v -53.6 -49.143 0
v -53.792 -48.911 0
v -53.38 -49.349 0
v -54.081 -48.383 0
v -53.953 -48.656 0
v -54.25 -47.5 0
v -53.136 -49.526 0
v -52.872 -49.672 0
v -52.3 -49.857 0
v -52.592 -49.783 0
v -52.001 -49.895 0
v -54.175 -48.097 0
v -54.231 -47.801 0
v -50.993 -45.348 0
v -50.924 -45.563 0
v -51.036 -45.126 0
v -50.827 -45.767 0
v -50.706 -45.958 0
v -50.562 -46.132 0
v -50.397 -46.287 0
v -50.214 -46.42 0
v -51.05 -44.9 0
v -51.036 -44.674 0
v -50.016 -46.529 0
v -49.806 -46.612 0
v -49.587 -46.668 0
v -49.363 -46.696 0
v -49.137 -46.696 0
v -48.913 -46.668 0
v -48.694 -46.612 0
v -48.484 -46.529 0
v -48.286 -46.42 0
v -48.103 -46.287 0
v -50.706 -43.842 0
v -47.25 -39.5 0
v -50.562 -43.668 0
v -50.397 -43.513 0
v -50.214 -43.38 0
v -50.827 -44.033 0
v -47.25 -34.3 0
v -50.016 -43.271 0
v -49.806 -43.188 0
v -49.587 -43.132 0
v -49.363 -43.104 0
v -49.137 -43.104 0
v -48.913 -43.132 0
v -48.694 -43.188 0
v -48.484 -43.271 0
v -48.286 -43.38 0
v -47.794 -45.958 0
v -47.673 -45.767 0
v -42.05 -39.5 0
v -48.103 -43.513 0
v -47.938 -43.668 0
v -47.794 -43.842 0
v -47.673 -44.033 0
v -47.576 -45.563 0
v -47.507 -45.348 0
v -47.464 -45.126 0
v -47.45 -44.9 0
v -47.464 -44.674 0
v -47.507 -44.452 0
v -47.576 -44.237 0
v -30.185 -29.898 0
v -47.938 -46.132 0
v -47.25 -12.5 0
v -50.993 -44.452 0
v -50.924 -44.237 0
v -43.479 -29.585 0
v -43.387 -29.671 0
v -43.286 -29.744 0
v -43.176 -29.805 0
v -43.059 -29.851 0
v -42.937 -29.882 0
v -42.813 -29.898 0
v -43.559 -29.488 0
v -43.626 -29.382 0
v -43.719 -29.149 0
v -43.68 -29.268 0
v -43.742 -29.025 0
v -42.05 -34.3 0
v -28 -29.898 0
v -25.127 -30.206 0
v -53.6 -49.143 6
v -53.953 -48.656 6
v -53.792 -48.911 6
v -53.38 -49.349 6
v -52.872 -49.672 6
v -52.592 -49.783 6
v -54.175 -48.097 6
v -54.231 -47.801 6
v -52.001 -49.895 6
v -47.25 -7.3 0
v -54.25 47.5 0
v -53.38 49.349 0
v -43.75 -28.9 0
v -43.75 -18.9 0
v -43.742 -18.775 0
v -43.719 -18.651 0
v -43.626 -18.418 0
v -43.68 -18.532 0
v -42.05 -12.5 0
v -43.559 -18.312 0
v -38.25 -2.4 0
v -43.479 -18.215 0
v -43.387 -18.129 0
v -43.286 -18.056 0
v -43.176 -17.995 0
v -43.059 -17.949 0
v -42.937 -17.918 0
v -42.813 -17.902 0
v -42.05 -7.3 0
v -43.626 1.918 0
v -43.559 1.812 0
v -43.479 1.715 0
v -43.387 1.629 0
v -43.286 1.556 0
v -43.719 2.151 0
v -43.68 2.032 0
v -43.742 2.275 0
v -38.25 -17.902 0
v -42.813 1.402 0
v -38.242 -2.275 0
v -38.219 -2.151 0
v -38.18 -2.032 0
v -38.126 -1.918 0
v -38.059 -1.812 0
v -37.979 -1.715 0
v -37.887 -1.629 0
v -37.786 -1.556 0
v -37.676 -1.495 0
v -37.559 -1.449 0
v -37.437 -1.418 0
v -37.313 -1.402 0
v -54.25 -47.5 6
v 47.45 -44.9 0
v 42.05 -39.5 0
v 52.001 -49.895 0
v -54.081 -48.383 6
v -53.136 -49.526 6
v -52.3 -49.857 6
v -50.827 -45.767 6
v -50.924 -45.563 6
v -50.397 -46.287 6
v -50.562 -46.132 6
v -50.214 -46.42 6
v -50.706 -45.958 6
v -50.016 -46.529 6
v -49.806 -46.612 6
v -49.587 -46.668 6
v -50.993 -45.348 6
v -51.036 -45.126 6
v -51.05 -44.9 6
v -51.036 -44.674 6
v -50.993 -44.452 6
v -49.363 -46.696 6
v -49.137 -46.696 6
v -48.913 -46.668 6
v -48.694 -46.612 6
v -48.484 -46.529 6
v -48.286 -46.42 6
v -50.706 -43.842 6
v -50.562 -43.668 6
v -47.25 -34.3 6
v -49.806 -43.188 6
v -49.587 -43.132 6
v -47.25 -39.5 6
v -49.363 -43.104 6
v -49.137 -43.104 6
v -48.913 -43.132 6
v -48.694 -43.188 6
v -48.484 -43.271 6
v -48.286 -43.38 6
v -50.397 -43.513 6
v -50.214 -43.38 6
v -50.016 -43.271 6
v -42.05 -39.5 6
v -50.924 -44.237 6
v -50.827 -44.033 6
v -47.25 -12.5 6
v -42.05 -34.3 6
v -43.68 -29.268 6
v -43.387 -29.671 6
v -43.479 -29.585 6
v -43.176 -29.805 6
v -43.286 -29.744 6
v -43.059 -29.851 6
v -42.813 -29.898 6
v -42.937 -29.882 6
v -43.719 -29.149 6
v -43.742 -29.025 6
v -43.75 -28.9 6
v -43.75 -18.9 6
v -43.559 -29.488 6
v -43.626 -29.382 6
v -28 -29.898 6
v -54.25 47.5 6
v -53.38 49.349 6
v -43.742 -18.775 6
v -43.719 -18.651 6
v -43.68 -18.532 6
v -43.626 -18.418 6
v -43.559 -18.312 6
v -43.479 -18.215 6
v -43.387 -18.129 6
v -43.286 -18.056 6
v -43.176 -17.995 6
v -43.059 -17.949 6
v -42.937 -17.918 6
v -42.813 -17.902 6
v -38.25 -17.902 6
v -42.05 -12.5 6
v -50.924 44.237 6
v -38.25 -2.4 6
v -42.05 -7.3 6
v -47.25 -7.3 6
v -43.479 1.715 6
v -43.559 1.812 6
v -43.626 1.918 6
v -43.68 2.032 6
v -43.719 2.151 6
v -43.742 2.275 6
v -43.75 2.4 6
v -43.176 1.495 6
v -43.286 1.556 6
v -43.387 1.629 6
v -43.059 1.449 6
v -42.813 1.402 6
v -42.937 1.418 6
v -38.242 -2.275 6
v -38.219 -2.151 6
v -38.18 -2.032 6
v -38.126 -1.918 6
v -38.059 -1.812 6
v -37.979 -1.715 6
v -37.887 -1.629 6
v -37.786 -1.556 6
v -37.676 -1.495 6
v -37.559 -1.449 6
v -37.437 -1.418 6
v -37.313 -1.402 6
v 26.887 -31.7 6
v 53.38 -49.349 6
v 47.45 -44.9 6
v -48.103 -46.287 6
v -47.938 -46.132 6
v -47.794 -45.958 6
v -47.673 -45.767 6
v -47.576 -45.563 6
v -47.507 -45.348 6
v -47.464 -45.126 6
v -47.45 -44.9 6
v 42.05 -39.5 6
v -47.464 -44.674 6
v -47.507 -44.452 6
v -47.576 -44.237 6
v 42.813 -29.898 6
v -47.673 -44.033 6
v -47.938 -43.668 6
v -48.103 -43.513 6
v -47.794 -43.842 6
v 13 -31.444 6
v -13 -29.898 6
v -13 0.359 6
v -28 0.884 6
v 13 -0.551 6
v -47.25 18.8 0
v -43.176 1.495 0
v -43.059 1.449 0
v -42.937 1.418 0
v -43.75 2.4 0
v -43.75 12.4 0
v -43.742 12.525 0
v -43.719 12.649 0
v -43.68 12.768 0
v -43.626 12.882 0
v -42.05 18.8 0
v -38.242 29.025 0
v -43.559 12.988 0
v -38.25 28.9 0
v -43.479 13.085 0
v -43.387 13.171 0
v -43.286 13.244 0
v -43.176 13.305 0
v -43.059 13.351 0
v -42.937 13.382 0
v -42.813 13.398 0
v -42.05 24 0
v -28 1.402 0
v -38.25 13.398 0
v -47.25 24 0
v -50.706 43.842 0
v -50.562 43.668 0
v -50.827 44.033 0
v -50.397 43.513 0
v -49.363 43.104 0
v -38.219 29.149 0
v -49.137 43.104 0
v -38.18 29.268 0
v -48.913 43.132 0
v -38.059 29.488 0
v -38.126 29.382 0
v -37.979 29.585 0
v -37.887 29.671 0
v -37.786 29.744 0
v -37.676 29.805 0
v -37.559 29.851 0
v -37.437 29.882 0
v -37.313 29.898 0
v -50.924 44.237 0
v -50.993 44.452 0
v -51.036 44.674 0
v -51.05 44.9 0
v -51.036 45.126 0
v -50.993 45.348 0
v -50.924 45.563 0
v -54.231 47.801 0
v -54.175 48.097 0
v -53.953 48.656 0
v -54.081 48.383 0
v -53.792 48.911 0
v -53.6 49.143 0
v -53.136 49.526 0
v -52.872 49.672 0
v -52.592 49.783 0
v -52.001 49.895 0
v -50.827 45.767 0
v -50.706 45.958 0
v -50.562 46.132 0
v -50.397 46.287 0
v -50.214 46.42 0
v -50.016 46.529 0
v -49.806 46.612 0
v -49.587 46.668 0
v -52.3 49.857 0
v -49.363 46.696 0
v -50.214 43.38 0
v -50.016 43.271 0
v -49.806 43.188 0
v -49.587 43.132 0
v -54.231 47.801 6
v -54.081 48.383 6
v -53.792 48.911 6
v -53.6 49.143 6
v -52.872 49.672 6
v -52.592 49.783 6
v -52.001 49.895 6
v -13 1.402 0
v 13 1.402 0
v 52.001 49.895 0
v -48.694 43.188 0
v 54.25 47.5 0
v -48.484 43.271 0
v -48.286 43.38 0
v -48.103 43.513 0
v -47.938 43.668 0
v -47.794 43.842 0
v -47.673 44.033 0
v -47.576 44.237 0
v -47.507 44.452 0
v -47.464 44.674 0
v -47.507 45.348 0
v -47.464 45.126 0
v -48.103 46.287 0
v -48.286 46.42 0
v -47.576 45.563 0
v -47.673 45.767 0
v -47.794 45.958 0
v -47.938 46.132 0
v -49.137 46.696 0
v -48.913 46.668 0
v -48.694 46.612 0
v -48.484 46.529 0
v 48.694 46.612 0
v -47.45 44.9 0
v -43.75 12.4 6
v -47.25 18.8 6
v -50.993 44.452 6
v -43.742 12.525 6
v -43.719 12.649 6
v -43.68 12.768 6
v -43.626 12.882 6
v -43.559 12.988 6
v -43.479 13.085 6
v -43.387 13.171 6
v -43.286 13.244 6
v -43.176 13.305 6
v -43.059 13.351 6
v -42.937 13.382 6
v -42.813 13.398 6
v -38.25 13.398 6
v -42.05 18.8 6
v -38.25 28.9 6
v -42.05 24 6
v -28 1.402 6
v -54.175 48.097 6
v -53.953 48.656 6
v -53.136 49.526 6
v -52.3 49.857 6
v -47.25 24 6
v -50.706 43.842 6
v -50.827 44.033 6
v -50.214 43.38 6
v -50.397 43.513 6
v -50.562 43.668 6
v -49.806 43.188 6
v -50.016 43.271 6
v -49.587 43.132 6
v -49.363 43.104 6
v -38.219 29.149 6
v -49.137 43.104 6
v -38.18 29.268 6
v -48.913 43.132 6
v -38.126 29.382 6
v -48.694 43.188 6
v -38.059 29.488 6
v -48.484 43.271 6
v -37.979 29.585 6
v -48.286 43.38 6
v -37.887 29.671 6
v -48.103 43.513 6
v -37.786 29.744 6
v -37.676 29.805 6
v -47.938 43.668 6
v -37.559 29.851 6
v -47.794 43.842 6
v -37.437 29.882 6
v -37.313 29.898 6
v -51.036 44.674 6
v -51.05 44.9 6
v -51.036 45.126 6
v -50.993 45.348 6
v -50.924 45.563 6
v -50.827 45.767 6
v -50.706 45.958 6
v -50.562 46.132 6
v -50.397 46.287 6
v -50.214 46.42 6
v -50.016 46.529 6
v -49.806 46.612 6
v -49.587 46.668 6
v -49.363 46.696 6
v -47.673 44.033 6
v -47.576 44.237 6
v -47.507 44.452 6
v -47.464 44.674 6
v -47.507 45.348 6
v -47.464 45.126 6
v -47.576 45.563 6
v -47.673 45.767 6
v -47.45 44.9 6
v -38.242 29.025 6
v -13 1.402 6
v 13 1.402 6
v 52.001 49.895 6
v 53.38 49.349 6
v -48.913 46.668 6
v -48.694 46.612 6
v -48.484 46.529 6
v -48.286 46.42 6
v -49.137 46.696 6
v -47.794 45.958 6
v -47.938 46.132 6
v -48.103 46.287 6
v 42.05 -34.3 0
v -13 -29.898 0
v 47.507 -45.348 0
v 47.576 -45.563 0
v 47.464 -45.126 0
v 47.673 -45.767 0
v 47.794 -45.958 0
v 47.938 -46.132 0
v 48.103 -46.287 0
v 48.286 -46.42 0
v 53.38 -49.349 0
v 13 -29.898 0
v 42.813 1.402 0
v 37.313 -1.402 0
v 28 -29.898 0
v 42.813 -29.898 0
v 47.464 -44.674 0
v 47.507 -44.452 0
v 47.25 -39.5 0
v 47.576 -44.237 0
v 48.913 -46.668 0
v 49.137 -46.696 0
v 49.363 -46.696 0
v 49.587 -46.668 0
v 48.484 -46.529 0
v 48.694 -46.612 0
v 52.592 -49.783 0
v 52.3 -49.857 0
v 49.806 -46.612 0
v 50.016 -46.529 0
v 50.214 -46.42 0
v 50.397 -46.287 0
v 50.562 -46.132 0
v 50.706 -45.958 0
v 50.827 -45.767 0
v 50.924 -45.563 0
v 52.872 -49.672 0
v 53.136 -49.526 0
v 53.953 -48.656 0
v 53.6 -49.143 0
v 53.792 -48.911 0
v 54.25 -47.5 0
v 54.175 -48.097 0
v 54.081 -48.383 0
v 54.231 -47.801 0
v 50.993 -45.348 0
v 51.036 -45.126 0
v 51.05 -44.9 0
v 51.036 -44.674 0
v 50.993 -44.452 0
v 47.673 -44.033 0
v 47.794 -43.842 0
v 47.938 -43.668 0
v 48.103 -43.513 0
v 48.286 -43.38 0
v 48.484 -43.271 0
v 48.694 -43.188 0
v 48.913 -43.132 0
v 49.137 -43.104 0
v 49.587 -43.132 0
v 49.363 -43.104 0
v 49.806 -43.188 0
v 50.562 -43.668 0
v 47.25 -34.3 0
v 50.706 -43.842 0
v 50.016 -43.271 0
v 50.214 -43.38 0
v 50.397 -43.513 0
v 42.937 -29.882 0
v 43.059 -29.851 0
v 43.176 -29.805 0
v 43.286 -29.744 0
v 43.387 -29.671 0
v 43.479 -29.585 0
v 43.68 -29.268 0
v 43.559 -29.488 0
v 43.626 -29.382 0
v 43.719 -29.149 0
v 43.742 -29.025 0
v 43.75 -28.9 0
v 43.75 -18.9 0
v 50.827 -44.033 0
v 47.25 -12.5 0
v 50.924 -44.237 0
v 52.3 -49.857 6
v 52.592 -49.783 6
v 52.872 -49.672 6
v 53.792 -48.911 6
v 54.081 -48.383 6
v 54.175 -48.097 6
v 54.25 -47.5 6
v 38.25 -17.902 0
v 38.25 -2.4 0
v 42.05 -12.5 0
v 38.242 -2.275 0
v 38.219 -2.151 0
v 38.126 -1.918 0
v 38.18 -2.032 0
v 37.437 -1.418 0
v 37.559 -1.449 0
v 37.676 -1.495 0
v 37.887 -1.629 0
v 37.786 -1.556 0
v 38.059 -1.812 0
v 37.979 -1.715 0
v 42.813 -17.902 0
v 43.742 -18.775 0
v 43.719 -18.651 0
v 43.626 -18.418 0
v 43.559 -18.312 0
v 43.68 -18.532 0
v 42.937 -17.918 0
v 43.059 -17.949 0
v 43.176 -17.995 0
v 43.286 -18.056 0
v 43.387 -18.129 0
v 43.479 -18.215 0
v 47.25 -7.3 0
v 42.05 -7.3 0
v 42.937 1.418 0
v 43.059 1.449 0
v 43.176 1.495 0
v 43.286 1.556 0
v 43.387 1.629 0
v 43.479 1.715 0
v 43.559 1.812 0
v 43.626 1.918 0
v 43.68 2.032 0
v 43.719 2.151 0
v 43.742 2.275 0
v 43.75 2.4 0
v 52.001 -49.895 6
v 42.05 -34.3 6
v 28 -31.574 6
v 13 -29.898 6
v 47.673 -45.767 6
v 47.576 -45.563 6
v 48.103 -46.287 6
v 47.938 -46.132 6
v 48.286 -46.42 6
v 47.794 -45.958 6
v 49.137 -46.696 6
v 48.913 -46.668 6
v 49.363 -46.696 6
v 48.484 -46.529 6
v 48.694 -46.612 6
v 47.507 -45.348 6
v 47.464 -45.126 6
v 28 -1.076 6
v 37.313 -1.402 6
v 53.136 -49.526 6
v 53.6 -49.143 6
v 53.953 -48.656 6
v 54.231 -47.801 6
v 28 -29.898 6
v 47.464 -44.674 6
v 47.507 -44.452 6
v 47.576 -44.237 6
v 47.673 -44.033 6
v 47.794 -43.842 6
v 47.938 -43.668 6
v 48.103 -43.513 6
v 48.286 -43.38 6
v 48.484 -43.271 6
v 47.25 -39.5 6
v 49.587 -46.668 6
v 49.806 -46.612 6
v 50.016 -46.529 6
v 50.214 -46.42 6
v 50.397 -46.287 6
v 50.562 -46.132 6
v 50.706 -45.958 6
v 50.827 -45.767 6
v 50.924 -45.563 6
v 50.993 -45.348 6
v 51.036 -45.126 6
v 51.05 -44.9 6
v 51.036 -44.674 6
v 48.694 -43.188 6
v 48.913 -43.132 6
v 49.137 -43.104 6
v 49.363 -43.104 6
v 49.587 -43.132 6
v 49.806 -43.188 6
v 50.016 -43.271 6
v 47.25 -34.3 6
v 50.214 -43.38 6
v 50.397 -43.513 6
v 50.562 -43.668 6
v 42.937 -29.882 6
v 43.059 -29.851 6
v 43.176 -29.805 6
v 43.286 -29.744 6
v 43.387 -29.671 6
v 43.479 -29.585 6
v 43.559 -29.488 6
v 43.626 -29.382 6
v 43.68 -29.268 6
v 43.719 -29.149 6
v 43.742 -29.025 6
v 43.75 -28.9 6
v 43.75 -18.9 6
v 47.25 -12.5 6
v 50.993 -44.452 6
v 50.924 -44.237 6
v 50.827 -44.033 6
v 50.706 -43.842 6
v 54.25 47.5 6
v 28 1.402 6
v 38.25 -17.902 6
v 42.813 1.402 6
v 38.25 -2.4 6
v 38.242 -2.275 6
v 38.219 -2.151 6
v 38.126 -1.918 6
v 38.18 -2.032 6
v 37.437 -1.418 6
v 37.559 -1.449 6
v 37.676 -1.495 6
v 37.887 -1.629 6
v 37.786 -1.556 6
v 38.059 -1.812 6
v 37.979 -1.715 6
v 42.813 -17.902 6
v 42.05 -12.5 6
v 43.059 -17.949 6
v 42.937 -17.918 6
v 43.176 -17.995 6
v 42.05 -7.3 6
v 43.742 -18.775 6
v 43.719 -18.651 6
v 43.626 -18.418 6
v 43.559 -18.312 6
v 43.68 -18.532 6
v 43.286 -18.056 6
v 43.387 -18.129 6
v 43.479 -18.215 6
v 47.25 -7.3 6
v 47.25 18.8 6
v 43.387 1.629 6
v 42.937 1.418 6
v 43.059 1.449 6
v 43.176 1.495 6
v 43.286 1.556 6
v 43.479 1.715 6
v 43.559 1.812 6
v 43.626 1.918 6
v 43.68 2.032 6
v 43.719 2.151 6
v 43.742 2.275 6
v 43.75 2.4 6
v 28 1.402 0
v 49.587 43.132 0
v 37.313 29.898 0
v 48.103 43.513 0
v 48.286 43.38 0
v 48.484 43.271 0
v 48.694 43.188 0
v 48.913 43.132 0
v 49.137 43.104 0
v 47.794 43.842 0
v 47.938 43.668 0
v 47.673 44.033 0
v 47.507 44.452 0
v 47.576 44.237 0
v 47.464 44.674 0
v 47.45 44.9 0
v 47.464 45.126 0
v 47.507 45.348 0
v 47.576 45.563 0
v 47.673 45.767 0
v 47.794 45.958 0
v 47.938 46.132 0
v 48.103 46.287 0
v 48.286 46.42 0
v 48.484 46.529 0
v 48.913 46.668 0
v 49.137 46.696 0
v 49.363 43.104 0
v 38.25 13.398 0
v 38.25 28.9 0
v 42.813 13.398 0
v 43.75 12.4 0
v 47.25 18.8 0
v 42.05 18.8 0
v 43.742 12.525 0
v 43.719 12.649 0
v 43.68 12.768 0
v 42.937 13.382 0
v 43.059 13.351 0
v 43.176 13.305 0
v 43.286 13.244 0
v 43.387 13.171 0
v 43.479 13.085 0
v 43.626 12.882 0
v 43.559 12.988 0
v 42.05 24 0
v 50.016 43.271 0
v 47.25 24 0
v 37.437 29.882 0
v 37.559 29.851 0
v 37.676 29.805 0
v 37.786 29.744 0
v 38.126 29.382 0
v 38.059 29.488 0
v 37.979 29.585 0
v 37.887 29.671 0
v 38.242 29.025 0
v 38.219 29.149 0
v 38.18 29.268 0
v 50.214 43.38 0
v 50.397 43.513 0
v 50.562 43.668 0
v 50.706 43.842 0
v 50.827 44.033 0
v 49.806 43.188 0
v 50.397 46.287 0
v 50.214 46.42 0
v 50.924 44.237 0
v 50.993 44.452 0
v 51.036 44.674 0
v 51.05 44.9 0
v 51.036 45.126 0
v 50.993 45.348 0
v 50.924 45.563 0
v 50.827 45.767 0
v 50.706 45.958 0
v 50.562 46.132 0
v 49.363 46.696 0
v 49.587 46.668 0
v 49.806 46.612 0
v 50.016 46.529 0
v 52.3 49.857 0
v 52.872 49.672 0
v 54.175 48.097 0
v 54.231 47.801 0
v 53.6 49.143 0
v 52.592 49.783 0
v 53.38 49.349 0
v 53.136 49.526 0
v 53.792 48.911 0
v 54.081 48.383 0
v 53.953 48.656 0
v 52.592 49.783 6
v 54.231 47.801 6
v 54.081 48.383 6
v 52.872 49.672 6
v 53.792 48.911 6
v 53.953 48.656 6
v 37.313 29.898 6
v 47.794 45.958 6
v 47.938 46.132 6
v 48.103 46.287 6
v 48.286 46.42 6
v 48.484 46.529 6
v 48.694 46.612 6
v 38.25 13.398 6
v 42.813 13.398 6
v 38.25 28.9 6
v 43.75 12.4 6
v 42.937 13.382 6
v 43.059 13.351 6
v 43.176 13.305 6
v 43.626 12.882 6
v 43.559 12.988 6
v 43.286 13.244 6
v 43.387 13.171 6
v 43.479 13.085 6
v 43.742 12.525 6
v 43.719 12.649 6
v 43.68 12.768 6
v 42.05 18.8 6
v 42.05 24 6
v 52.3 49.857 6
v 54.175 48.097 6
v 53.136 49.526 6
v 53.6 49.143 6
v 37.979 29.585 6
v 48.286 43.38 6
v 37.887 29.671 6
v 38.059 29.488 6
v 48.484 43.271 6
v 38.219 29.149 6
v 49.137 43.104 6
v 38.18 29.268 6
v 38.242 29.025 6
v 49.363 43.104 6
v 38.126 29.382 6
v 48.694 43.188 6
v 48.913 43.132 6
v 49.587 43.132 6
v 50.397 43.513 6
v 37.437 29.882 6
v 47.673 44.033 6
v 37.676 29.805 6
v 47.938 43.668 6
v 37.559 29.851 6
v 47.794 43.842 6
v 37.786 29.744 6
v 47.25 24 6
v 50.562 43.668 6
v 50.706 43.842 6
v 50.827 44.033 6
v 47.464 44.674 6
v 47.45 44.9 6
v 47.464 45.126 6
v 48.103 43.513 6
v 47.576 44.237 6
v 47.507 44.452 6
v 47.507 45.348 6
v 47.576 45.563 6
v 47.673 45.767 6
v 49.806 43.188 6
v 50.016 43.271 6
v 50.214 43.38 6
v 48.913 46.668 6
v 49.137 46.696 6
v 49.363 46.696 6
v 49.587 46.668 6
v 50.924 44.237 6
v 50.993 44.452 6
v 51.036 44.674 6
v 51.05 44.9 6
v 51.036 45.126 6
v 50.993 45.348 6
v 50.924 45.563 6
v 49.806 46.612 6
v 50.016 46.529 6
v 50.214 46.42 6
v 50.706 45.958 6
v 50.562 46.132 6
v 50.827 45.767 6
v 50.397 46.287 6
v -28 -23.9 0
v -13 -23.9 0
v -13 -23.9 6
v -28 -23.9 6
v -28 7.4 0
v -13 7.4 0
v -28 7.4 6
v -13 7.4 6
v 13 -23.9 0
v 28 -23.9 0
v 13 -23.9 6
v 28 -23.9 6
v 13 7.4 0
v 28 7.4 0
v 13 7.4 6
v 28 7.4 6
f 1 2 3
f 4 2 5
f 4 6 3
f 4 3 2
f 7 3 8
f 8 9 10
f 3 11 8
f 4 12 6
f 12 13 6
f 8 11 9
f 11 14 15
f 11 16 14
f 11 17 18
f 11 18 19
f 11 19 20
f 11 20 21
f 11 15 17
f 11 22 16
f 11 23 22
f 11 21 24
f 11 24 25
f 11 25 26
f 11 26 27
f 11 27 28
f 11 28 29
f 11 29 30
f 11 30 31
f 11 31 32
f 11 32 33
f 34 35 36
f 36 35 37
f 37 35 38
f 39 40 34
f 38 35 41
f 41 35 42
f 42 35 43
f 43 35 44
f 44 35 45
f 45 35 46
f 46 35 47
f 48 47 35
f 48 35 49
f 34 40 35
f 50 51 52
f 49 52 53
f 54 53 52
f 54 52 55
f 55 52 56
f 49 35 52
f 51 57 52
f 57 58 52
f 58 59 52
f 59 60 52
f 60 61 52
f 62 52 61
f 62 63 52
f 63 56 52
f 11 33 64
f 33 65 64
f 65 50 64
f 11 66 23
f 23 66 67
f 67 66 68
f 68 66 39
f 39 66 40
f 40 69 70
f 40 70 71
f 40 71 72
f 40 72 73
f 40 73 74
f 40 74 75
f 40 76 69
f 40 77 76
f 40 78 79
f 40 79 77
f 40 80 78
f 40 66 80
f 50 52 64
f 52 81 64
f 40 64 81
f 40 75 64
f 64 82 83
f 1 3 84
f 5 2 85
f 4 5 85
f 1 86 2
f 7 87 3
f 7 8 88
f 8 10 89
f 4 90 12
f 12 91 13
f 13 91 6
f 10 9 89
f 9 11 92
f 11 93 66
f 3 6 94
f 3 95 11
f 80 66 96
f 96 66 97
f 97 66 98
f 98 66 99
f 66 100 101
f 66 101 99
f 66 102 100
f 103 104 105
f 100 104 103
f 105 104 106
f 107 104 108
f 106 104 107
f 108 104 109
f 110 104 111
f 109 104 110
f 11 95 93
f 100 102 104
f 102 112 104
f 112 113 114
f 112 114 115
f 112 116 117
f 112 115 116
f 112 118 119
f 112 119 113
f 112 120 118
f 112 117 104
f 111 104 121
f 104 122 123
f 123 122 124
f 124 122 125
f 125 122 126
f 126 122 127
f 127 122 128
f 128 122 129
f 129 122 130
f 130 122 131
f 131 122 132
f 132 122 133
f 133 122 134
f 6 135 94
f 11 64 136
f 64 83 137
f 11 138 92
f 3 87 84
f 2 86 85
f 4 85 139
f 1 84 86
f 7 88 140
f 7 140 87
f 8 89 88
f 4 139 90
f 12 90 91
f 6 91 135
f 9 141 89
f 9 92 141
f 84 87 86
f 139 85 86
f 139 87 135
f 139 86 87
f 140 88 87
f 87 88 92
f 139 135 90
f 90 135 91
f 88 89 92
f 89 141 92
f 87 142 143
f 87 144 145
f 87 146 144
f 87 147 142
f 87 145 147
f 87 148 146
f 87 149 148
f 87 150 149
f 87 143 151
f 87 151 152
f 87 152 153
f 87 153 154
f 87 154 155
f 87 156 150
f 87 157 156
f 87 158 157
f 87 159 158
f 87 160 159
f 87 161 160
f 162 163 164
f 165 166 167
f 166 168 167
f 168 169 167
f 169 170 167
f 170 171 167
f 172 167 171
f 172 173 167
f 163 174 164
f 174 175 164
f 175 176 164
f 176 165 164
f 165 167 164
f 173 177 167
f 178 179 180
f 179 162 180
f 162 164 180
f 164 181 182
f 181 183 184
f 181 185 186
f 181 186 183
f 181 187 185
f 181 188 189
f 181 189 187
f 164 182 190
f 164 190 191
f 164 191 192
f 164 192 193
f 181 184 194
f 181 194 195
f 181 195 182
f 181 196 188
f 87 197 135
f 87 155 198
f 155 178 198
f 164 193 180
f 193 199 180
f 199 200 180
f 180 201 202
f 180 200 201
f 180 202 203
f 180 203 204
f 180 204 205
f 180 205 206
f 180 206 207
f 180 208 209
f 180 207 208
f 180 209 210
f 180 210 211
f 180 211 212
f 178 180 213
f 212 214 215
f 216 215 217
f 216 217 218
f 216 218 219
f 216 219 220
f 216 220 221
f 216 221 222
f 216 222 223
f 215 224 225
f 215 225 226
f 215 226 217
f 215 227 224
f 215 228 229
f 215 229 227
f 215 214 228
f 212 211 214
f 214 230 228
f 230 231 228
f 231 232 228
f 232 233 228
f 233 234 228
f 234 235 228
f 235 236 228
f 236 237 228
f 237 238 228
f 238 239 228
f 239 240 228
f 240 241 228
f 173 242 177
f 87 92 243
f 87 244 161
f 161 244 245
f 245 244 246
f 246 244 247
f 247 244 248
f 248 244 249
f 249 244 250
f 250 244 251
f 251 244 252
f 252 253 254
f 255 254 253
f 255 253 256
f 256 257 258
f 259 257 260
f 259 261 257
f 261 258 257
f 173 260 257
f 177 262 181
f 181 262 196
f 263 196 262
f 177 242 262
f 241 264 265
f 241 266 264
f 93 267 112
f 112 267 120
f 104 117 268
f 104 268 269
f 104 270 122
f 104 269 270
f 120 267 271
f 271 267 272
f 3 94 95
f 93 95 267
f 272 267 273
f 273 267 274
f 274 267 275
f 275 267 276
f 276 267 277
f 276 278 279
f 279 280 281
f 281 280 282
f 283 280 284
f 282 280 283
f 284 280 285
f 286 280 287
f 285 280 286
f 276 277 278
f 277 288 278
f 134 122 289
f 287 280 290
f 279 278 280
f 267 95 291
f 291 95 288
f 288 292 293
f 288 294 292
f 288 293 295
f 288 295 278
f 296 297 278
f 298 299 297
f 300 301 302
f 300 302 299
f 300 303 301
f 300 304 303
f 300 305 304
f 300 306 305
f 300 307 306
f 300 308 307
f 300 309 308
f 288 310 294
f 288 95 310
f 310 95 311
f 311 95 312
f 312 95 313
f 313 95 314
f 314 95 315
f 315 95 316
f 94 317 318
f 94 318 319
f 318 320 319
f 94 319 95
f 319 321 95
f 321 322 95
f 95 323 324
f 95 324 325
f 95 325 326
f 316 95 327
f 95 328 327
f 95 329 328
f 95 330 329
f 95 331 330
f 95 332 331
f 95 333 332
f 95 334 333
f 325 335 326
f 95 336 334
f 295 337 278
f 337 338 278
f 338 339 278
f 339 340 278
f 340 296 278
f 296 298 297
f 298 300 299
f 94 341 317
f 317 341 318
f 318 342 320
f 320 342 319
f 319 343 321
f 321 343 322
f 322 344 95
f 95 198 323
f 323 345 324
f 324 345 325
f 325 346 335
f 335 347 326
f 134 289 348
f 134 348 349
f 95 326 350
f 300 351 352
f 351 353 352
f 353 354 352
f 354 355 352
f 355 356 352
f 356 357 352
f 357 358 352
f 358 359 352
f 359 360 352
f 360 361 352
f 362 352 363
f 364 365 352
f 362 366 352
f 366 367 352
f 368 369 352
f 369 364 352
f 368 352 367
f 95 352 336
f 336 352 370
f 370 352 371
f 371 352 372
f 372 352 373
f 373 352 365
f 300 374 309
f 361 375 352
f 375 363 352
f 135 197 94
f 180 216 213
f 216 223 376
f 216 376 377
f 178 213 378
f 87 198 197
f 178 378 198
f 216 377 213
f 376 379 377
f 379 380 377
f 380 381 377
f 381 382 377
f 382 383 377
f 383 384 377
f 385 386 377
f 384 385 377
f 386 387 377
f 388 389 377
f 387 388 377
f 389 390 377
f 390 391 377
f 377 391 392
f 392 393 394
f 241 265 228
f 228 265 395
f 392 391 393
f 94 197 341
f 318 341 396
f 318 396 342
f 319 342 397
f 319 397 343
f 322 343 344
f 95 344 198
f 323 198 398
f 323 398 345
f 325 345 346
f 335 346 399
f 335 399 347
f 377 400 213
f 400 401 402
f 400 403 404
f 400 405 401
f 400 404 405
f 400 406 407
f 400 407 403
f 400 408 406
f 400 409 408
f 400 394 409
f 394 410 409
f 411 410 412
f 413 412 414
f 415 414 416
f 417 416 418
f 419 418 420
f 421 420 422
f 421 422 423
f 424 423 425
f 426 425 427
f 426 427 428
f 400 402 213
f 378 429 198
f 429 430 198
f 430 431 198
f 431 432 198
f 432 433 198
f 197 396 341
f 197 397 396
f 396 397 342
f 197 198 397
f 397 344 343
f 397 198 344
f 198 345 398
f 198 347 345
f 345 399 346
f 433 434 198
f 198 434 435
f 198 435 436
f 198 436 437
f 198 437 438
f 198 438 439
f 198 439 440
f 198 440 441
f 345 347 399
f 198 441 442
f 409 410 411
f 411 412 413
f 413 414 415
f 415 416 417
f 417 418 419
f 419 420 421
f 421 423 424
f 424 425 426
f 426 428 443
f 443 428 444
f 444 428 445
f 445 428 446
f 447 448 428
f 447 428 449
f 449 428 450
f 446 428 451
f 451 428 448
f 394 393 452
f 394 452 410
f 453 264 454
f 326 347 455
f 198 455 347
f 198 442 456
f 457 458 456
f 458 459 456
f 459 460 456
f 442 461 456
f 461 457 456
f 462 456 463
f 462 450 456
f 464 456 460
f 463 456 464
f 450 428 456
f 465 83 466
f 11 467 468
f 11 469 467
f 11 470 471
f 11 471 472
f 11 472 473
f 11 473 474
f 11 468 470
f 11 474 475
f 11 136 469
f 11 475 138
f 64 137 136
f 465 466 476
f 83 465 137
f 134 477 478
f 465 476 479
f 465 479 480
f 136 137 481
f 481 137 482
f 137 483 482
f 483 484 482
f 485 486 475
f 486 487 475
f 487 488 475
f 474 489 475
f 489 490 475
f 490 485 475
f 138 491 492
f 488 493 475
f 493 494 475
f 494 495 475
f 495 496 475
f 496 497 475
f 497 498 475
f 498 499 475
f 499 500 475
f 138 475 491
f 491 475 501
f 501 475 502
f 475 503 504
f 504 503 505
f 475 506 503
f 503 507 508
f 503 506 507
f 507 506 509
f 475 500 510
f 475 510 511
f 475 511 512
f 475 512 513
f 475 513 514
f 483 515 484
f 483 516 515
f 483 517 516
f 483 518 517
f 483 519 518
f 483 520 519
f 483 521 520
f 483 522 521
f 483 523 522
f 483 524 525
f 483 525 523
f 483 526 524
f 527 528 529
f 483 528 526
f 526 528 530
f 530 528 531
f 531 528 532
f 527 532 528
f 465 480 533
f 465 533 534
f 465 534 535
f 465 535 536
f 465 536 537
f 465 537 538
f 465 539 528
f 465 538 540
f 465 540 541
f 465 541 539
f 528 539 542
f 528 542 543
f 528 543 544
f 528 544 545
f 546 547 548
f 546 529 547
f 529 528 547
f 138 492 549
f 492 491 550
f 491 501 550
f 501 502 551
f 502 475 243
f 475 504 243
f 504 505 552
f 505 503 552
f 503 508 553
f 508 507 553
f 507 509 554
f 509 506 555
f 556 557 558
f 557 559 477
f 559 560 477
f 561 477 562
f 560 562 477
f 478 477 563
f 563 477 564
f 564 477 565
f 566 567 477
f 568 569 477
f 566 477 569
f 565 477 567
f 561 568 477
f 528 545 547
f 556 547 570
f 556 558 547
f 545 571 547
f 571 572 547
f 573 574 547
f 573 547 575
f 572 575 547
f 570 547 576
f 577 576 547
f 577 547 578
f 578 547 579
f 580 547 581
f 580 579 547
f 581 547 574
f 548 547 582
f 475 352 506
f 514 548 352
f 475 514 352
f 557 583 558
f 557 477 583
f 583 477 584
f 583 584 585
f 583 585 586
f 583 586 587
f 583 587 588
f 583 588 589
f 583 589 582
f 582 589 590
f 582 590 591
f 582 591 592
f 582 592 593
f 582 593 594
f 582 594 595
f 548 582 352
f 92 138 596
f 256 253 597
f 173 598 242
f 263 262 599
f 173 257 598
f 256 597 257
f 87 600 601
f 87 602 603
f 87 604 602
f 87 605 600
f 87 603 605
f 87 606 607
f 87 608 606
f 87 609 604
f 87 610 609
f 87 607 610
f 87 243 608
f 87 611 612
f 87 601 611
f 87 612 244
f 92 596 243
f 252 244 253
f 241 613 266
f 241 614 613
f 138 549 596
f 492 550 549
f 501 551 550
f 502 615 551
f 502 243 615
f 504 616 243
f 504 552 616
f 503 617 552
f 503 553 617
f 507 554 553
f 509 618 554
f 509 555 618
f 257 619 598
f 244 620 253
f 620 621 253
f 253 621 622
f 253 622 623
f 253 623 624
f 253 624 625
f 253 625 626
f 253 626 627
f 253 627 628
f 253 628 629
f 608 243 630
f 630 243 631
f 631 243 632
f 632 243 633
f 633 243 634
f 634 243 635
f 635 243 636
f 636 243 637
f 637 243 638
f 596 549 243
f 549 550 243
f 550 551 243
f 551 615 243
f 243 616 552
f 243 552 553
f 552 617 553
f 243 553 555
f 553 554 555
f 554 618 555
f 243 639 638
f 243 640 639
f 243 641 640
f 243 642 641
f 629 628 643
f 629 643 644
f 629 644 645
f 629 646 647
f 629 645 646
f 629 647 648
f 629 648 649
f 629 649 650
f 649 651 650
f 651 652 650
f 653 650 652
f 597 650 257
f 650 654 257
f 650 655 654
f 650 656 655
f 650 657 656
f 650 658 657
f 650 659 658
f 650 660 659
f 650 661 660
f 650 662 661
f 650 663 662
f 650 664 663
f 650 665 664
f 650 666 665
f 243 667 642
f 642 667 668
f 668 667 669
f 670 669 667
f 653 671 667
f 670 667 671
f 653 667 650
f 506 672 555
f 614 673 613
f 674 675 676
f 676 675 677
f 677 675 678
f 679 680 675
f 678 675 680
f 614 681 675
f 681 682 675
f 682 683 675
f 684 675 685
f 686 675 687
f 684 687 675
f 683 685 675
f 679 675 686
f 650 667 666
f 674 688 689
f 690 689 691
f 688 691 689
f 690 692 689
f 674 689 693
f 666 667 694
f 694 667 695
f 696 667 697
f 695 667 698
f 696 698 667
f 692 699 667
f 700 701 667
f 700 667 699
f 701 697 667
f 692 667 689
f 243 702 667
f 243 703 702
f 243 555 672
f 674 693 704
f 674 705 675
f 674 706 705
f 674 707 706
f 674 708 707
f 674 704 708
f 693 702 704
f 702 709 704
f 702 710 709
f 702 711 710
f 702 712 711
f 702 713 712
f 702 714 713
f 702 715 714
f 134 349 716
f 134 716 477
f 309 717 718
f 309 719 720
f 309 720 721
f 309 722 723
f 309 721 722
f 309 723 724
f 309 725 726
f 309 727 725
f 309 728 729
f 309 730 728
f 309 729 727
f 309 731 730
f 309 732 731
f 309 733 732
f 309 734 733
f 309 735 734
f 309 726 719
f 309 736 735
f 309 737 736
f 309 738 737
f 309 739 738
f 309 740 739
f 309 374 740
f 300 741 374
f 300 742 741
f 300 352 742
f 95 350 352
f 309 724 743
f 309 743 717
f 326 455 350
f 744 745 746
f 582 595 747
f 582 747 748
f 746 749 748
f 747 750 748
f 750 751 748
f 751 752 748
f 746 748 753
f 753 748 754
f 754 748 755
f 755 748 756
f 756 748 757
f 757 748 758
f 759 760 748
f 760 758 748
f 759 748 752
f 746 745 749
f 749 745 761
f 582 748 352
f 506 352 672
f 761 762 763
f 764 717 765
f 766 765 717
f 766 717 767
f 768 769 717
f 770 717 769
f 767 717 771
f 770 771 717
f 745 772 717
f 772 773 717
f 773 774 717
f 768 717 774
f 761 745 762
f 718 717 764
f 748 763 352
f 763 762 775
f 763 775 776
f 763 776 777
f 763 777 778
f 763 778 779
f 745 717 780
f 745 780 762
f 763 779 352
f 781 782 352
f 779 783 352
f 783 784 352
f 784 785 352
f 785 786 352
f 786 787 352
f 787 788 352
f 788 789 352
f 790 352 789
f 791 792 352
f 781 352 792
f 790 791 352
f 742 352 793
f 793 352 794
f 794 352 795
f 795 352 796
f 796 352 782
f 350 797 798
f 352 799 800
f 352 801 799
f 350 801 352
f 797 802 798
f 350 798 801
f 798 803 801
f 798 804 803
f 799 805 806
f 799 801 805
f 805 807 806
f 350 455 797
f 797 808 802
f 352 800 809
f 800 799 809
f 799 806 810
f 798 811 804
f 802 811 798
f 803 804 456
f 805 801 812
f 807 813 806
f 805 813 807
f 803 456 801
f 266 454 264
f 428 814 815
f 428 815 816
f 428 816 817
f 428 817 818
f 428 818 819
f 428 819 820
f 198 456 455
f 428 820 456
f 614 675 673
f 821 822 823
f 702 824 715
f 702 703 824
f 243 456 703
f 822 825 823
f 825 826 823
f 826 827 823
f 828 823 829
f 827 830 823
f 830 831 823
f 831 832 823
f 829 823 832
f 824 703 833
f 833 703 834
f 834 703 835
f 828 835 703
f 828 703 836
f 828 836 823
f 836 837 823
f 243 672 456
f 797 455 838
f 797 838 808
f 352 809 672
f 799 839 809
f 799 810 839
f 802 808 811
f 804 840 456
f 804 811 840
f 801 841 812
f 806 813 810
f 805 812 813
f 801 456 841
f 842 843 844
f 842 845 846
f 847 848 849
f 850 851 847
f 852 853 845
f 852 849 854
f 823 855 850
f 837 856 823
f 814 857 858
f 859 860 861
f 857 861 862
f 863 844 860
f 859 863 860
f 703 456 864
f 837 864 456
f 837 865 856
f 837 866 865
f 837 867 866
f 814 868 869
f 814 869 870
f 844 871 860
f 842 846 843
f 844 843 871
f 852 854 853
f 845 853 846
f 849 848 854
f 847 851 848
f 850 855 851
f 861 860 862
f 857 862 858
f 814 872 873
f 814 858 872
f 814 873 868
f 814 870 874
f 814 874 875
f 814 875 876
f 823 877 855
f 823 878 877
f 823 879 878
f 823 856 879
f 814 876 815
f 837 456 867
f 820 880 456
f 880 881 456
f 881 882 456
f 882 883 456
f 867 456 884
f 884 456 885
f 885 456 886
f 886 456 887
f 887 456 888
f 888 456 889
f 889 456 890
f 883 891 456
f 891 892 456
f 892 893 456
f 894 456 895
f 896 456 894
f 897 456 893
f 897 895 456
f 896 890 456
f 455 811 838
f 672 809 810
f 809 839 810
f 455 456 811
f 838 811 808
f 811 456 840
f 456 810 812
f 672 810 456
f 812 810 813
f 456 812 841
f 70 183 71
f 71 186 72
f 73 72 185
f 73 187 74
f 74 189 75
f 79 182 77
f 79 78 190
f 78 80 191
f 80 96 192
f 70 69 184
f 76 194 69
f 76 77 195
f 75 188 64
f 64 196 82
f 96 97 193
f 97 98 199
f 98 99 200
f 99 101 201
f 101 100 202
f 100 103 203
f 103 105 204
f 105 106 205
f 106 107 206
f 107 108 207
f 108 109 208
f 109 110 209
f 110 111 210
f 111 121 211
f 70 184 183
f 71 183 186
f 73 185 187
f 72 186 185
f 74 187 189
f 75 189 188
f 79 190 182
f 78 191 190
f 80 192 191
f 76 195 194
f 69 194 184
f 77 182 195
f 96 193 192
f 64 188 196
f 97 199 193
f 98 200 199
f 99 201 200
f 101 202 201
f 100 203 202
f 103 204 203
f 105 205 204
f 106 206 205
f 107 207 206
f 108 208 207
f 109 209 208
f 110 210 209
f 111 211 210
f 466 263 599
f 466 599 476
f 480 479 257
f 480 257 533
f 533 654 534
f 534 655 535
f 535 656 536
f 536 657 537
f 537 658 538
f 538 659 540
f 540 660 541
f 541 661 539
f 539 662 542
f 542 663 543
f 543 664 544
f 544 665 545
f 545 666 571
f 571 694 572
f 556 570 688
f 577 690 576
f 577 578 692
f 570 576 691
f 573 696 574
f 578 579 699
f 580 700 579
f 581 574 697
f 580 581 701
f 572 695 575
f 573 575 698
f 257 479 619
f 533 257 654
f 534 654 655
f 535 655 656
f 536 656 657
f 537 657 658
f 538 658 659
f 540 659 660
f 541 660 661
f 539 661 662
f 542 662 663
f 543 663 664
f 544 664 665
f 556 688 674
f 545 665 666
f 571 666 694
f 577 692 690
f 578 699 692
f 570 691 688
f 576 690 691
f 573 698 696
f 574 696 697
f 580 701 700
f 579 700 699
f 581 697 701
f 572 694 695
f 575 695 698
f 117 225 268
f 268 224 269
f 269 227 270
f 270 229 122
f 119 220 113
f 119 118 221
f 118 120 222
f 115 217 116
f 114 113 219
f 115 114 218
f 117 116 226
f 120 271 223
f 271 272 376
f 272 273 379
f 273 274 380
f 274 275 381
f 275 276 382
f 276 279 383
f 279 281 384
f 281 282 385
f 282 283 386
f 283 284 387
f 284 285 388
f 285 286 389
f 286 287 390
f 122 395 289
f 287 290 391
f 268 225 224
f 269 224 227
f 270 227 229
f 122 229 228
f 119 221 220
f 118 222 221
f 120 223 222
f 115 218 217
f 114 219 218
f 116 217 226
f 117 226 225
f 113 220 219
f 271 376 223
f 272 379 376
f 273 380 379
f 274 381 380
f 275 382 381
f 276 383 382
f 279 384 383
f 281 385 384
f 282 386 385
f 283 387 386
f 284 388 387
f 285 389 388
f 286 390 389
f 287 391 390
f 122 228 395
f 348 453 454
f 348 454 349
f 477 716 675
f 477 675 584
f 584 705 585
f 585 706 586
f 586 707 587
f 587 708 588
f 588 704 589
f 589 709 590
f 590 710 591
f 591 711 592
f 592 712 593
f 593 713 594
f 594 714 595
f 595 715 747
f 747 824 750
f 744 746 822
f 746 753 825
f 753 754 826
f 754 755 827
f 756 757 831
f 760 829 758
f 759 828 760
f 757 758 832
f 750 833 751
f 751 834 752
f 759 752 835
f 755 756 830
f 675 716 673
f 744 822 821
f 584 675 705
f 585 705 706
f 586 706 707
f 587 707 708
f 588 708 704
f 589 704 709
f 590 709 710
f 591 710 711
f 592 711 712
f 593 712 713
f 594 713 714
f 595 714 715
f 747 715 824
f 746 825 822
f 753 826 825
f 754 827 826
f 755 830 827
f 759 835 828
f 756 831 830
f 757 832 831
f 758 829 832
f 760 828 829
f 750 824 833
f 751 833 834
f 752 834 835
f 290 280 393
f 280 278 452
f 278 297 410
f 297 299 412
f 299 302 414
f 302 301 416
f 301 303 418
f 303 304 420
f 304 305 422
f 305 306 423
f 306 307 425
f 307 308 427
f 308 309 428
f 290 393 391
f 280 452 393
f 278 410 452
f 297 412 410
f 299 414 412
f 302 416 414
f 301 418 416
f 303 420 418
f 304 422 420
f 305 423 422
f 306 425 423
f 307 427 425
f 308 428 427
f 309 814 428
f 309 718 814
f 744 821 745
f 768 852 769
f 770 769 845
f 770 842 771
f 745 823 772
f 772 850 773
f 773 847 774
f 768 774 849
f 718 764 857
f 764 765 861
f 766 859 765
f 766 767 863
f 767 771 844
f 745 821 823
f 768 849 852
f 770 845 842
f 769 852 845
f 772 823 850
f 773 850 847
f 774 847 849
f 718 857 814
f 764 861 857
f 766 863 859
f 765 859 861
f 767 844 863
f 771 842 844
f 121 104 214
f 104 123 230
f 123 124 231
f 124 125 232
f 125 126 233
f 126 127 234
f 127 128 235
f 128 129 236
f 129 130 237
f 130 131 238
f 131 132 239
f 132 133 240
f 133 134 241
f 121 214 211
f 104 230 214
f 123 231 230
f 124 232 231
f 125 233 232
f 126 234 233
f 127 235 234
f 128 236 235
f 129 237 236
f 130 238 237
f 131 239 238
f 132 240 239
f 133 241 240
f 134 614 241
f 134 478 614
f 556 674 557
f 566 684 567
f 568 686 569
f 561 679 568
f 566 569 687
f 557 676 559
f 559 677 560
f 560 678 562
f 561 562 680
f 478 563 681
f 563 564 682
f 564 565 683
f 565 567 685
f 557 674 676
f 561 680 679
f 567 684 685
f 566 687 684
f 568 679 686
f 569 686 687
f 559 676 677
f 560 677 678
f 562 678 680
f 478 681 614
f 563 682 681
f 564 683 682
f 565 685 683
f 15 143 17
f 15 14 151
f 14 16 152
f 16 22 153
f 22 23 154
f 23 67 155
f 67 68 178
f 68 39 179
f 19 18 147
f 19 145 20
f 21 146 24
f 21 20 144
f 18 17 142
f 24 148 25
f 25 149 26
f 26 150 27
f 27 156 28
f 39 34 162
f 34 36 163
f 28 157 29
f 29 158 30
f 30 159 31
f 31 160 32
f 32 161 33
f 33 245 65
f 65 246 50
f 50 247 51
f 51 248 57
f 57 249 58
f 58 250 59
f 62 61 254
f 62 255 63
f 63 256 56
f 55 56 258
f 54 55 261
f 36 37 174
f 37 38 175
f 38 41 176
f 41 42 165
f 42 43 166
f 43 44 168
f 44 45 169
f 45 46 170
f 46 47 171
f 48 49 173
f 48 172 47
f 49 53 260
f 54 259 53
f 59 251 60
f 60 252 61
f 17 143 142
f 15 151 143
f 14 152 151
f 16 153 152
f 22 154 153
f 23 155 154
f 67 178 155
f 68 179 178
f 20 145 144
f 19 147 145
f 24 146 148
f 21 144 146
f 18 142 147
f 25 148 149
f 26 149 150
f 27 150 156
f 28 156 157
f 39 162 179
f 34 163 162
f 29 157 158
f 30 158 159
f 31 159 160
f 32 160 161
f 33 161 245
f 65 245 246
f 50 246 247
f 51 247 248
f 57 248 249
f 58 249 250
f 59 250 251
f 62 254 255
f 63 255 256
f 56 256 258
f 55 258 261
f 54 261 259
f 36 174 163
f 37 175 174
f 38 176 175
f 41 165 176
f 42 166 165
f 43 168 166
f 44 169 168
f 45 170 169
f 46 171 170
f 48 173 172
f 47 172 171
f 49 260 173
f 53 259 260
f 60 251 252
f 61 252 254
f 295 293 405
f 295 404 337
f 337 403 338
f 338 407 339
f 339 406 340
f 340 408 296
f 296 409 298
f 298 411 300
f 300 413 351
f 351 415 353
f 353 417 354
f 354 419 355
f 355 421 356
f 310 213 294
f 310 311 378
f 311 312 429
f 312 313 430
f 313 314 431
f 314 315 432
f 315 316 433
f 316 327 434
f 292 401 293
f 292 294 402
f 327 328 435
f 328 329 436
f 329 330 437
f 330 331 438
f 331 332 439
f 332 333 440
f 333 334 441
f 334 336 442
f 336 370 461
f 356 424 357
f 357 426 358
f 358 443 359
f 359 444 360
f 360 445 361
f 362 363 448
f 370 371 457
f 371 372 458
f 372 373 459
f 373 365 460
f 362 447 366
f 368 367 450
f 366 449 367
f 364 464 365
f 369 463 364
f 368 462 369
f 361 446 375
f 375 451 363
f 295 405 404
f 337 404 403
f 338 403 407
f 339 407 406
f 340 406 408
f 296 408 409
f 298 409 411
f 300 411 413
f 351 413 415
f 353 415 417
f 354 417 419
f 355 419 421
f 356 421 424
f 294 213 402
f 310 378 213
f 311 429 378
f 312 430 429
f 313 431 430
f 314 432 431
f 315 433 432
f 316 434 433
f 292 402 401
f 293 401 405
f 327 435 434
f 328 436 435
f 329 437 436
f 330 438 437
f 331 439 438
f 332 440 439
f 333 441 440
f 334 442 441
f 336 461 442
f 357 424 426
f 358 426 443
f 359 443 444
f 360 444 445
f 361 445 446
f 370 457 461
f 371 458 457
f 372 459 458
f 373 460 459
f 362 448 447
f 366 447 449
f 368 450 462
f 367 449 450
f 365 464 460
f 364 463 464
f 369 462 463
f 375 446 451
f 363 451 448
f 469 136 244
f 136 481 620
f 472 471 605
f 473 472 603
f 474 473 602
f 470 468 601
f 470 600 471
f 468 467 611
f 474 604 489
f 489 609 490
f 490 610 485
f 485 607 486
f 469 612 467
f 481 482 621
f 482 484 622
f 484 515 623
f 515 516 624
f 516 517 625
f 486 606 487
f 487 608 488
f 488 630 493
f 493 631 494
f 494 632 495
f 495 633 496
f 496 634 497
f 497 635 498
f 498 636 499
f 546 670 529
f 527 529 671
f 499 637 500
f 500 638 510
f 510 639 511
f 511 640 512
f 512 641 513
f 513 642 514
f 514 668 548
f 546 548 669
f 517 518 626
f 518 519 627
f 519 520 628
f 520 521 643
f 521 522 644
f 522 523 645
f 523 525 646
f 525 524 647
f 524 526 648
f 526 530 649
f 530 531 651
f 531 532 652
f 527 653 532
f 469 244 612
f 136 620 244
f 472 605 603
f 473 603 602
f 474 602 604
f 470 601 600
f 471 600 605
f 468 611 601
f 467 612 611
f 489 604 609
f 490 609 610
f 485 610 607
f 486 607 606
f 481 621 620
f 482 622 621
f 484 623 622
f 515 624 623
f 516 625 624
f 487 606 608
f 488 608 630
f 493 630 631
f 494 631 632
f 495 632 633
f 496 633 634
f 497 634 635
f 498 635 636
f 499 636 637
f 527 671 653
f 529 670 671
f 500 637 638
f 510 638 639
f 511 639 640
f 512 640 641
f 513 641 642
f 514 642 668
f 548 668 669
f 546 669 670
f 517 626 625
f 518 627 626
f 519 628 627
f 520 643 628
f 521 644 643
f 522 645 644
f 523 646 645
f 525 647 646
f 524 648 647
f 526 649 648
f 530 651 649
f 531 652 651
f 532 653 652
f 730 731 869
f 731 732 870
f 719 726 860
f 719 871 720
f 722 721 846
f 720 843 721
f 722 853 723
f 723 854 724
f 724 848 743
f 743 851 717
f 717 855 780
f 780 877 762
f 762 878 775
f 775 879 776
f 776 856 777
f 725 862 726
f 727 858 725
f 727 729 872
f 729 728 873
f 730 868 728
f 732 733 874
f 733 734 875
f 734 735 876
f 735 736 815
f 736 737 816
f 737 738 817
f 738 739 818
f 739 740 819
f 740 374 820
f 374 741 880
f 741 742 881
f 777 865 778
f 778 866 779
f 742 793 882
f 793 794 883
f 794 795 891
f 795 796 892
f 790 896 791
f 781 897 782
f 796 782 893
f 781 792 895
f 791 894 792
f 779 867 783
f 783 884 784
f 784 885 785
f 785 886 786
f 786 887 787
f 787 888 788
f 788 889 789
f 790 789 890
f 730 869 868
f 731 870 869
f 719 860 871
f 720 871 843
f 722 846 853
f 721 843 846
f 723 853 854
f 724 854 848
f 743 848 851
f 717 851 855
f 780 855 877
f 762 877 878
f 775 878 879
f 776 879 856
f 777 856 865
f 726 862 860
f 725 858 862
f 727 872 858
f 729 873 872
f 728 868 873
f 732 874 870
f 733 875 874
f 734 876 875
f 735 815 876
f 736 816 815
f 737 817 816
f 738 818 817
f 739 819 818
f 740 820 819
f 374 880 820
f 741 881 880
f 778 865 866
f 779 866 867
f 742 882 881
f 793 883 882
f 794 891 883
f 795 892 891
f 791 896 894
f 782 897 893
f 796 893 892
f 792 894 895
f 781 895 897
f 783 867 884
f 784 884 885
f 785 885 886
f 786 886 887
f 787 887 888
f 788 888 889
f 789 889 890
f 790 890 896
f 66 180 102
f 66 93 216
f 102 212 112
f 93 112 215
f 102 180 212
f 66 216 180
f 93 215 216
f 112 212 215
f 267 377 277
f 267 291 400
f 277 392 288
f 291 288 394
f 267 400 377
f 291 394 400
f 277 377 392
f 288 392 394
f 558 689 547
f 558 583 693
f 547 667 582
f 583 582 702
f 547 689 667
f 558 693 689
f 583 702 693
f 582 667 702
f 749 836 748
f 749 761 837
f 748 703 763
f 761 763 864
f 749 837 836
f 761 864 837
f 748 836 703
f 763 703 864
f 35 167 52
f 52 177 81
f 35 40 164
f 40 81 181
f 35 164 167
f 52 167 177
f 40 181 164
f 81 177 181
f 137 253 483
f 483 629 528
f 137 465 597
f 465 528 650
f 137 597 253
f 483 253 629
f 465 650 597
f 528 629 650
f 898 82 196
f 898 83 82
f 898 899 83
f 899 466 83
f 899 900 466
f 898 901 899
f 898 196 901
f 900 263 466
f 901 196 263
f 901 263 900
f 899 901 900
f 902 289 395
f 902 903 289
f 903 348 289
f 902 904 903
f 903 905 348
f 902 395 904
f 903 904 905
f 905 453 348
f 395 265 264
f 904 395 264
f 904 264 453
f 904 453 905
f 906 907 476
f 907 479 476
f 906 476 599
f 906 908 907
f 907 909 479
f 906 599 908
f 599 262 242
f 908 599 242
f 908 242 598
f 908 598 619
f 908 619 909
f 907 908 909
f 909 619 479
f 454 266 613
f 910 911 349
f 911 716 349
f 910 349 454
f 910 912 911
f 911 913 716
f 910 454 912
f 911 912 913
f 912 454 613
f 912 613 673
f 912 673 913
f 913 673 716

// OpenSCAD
$fn = 50;

difference() {
	union() {
		translate(v = [0, 0, 0]) {
			rotate(a = [0, 0, 0]) {
				difference() {
					union() {
						translate(v = [0, 0, 0]) {
							rotate(a = [0, 0, 0]) {
								difference() {
									union() {
										hull() {
											translate(v = [-51.8500000005, 47.5000000005, 0]) {
												cylinder(h = 6.0, r = 2.4);
											}
											translate(v = [51.8500000005, 47.5000000005, 0]) {
												cylinder(h = 6.0, r = 2.4);
											}
											translate(v = [-51.8500000005, -47.5000000005, 0]) {
												cylinder(h = 6.0, r = 2.4);
											}
											translate(v = [51.8500000005, -47.5000000005, 0]) {
												cylinder(h = 6.0, r = 2.4);
											}
										}
									}
									union() {
										translate(v = [0.0, -23.900000000000006, -0.1]) {
											hull() {
												translate(v = [-42.75, 5.0, 0]) {
													cylinder(h = 18.2, r = 1.0);
												}
												translate(v = [42.75, 5.0, 0]) {
													cylinder(h = 18.2, r = 1.0);
												}
												translate(v = [-42.75, -5.0, 0]) {
													cylinder(h = 18.2, r = 1.0);
												}
												translate(v = [42.75, -5.0, 0]) {
													cylinder(h = 18.2, r = 1.0);
												}
											}
										}
										translate(v = [0.0, -15.650000000000006, -0.1]) {
											hull() {
												translate(v = [-37.25, 13.25, 0]) {
													cylinder(h = 18.2, r = 1.0);
												}
												translate(v = [37.25, 13.25, 0]) {
													cylinder(h = 18.2, r = 1.0);
												}
												translate(v = [-37.25, -13.25, 0]) {
													cylinder(h = 18.2, r = 1.0);
												}
												translate(v = [37.25, -13.25, 0]) {
													cylinder(h = 18.2, r = 1.0);
												}
											}
										}
										translate(v = [0.0, 7.399999999999995, -0.1]) {
											hull() {
												translate(v = [-42.75, 5.0, 0]) {
													cylinder(h = 18.2, r = 1.0);
												}
												translate(v = [42.75, 5.0, 0]) {
													cylinder(h = 18.2, r = 1.0);
												}
												translate(v = [-42.75, -5.0, 0]) {
													cylinder(h = 18.2, r = 1.0);
												}
												translate(v = [42.75, -5.0, 0]) {
													cylinder(h = 18.2, r = 1.0);
												}
											}
										}
										translate(v = [0.0, 15.649999999999995, -0.1]) {
											hull() {
												translate(v = [-37.25, 13.25, 0]) {
													cylinder(h = 18.2, r = 1.0);
												}
												translate(v = [37.25, 13.25, 0]) {
													cylinder(h = 18.2, r = 1.0);
												}
												translate(v = [-37.25, -13.25, 0]) {
													cylinder(h = 18.2, r = 1.0);
												}
												translate(v = [37.25, -13.25, 0]) {
													cylinder(h = 18.2, r = 1.0);
												}
											}
										}
										translate(v = [-49.2500000005, -44.9000000005, -0.1]) {
											cylinder(h = 6.2, r = 1.8);
										}
										translate(v = [-49.2500000005, 44.9000000005, -0.1]) {
											cylinder(h = 6.2, r = 1.8);
										}
										translate(v = [49.2500000005, -44.9000000005, -0.1]) {
											cylinder(h = 6.2, r = 1.8);
										}
										translate(v = [49.2500000005, 44.9000000005, -0.1]) {
											cylinder(h = 6.2, r = 1.8);
										}
										translate(v = [-47.25, -12.500000000000005, -0.1]) {
											cube(size = [5.2, 5.2, 6.2]);
										}
										translate(v = [-47.25, 18.799999999999994, -0.1]) {
											cube(size = [5.2, 5.2, 6.2]);
										}
										translate(v = [42.05, -12.500000000000005, -0.1]) {
											cube(size = [5.2, 5.2, 6.2]);
										}
										translate(v = [42.05, 18.799999999999994, -0.1]) {
											cube(size = [5.2, 5.2, 6.2]);
										}
										translate(v = [-47.25, -39.5, -0.1]) {
											cube(size = [5.2, 5.2, 6.2]);
										}
										translate(v = [42.05, -39.5, -0.1]) {
											cube(size = [5.2, 5.2, 6.2]);
										}
									}
								}
							}
						}
						translate(v = [0, 0, 0]) {
							rotate(a = [0, 0, 0]) {
								difference() {
									union() {
										translate(v = [-28.0, -31.7, 0]) {
											cube(size = [15.0, 7.8, 6.0]);
										}
									}
									union();
								}
							}
						}
						translate(v = [0, 0, 0]) {
							rotate(a = [0, 0, 0]) {
								difference() {
									union() {
										translate(v = [-28.0, -1.3999999999999986, 0]) {
											cube(size = [15.0, 8.8, 6.0]);
										}
									}
									union();
								}
							}
						}
						translate(v = [0, 0, 0]) {
							rotate(a = [0, 0, 0]) {
								difference() {
									union() {
										translate(v = [13.0, -31.7, 0]) {
											cube(size = [15.0, 7.8, 6.0]);
										}
									}
									union();
								}
							}
						}
						translate(v = [0, 0, 0]) {
							rotate(a = [0, 0, 0]) {
								difference() {
									union() {
										translate(v = [13.0, -1.3999999999999986, 0]) {
											cube(size = [15.0, 8.8, 6.0]);
										}
									}
									union();
								}
							}
						}
					}
					union();
				}
			}
		}
	}
	union();
}
